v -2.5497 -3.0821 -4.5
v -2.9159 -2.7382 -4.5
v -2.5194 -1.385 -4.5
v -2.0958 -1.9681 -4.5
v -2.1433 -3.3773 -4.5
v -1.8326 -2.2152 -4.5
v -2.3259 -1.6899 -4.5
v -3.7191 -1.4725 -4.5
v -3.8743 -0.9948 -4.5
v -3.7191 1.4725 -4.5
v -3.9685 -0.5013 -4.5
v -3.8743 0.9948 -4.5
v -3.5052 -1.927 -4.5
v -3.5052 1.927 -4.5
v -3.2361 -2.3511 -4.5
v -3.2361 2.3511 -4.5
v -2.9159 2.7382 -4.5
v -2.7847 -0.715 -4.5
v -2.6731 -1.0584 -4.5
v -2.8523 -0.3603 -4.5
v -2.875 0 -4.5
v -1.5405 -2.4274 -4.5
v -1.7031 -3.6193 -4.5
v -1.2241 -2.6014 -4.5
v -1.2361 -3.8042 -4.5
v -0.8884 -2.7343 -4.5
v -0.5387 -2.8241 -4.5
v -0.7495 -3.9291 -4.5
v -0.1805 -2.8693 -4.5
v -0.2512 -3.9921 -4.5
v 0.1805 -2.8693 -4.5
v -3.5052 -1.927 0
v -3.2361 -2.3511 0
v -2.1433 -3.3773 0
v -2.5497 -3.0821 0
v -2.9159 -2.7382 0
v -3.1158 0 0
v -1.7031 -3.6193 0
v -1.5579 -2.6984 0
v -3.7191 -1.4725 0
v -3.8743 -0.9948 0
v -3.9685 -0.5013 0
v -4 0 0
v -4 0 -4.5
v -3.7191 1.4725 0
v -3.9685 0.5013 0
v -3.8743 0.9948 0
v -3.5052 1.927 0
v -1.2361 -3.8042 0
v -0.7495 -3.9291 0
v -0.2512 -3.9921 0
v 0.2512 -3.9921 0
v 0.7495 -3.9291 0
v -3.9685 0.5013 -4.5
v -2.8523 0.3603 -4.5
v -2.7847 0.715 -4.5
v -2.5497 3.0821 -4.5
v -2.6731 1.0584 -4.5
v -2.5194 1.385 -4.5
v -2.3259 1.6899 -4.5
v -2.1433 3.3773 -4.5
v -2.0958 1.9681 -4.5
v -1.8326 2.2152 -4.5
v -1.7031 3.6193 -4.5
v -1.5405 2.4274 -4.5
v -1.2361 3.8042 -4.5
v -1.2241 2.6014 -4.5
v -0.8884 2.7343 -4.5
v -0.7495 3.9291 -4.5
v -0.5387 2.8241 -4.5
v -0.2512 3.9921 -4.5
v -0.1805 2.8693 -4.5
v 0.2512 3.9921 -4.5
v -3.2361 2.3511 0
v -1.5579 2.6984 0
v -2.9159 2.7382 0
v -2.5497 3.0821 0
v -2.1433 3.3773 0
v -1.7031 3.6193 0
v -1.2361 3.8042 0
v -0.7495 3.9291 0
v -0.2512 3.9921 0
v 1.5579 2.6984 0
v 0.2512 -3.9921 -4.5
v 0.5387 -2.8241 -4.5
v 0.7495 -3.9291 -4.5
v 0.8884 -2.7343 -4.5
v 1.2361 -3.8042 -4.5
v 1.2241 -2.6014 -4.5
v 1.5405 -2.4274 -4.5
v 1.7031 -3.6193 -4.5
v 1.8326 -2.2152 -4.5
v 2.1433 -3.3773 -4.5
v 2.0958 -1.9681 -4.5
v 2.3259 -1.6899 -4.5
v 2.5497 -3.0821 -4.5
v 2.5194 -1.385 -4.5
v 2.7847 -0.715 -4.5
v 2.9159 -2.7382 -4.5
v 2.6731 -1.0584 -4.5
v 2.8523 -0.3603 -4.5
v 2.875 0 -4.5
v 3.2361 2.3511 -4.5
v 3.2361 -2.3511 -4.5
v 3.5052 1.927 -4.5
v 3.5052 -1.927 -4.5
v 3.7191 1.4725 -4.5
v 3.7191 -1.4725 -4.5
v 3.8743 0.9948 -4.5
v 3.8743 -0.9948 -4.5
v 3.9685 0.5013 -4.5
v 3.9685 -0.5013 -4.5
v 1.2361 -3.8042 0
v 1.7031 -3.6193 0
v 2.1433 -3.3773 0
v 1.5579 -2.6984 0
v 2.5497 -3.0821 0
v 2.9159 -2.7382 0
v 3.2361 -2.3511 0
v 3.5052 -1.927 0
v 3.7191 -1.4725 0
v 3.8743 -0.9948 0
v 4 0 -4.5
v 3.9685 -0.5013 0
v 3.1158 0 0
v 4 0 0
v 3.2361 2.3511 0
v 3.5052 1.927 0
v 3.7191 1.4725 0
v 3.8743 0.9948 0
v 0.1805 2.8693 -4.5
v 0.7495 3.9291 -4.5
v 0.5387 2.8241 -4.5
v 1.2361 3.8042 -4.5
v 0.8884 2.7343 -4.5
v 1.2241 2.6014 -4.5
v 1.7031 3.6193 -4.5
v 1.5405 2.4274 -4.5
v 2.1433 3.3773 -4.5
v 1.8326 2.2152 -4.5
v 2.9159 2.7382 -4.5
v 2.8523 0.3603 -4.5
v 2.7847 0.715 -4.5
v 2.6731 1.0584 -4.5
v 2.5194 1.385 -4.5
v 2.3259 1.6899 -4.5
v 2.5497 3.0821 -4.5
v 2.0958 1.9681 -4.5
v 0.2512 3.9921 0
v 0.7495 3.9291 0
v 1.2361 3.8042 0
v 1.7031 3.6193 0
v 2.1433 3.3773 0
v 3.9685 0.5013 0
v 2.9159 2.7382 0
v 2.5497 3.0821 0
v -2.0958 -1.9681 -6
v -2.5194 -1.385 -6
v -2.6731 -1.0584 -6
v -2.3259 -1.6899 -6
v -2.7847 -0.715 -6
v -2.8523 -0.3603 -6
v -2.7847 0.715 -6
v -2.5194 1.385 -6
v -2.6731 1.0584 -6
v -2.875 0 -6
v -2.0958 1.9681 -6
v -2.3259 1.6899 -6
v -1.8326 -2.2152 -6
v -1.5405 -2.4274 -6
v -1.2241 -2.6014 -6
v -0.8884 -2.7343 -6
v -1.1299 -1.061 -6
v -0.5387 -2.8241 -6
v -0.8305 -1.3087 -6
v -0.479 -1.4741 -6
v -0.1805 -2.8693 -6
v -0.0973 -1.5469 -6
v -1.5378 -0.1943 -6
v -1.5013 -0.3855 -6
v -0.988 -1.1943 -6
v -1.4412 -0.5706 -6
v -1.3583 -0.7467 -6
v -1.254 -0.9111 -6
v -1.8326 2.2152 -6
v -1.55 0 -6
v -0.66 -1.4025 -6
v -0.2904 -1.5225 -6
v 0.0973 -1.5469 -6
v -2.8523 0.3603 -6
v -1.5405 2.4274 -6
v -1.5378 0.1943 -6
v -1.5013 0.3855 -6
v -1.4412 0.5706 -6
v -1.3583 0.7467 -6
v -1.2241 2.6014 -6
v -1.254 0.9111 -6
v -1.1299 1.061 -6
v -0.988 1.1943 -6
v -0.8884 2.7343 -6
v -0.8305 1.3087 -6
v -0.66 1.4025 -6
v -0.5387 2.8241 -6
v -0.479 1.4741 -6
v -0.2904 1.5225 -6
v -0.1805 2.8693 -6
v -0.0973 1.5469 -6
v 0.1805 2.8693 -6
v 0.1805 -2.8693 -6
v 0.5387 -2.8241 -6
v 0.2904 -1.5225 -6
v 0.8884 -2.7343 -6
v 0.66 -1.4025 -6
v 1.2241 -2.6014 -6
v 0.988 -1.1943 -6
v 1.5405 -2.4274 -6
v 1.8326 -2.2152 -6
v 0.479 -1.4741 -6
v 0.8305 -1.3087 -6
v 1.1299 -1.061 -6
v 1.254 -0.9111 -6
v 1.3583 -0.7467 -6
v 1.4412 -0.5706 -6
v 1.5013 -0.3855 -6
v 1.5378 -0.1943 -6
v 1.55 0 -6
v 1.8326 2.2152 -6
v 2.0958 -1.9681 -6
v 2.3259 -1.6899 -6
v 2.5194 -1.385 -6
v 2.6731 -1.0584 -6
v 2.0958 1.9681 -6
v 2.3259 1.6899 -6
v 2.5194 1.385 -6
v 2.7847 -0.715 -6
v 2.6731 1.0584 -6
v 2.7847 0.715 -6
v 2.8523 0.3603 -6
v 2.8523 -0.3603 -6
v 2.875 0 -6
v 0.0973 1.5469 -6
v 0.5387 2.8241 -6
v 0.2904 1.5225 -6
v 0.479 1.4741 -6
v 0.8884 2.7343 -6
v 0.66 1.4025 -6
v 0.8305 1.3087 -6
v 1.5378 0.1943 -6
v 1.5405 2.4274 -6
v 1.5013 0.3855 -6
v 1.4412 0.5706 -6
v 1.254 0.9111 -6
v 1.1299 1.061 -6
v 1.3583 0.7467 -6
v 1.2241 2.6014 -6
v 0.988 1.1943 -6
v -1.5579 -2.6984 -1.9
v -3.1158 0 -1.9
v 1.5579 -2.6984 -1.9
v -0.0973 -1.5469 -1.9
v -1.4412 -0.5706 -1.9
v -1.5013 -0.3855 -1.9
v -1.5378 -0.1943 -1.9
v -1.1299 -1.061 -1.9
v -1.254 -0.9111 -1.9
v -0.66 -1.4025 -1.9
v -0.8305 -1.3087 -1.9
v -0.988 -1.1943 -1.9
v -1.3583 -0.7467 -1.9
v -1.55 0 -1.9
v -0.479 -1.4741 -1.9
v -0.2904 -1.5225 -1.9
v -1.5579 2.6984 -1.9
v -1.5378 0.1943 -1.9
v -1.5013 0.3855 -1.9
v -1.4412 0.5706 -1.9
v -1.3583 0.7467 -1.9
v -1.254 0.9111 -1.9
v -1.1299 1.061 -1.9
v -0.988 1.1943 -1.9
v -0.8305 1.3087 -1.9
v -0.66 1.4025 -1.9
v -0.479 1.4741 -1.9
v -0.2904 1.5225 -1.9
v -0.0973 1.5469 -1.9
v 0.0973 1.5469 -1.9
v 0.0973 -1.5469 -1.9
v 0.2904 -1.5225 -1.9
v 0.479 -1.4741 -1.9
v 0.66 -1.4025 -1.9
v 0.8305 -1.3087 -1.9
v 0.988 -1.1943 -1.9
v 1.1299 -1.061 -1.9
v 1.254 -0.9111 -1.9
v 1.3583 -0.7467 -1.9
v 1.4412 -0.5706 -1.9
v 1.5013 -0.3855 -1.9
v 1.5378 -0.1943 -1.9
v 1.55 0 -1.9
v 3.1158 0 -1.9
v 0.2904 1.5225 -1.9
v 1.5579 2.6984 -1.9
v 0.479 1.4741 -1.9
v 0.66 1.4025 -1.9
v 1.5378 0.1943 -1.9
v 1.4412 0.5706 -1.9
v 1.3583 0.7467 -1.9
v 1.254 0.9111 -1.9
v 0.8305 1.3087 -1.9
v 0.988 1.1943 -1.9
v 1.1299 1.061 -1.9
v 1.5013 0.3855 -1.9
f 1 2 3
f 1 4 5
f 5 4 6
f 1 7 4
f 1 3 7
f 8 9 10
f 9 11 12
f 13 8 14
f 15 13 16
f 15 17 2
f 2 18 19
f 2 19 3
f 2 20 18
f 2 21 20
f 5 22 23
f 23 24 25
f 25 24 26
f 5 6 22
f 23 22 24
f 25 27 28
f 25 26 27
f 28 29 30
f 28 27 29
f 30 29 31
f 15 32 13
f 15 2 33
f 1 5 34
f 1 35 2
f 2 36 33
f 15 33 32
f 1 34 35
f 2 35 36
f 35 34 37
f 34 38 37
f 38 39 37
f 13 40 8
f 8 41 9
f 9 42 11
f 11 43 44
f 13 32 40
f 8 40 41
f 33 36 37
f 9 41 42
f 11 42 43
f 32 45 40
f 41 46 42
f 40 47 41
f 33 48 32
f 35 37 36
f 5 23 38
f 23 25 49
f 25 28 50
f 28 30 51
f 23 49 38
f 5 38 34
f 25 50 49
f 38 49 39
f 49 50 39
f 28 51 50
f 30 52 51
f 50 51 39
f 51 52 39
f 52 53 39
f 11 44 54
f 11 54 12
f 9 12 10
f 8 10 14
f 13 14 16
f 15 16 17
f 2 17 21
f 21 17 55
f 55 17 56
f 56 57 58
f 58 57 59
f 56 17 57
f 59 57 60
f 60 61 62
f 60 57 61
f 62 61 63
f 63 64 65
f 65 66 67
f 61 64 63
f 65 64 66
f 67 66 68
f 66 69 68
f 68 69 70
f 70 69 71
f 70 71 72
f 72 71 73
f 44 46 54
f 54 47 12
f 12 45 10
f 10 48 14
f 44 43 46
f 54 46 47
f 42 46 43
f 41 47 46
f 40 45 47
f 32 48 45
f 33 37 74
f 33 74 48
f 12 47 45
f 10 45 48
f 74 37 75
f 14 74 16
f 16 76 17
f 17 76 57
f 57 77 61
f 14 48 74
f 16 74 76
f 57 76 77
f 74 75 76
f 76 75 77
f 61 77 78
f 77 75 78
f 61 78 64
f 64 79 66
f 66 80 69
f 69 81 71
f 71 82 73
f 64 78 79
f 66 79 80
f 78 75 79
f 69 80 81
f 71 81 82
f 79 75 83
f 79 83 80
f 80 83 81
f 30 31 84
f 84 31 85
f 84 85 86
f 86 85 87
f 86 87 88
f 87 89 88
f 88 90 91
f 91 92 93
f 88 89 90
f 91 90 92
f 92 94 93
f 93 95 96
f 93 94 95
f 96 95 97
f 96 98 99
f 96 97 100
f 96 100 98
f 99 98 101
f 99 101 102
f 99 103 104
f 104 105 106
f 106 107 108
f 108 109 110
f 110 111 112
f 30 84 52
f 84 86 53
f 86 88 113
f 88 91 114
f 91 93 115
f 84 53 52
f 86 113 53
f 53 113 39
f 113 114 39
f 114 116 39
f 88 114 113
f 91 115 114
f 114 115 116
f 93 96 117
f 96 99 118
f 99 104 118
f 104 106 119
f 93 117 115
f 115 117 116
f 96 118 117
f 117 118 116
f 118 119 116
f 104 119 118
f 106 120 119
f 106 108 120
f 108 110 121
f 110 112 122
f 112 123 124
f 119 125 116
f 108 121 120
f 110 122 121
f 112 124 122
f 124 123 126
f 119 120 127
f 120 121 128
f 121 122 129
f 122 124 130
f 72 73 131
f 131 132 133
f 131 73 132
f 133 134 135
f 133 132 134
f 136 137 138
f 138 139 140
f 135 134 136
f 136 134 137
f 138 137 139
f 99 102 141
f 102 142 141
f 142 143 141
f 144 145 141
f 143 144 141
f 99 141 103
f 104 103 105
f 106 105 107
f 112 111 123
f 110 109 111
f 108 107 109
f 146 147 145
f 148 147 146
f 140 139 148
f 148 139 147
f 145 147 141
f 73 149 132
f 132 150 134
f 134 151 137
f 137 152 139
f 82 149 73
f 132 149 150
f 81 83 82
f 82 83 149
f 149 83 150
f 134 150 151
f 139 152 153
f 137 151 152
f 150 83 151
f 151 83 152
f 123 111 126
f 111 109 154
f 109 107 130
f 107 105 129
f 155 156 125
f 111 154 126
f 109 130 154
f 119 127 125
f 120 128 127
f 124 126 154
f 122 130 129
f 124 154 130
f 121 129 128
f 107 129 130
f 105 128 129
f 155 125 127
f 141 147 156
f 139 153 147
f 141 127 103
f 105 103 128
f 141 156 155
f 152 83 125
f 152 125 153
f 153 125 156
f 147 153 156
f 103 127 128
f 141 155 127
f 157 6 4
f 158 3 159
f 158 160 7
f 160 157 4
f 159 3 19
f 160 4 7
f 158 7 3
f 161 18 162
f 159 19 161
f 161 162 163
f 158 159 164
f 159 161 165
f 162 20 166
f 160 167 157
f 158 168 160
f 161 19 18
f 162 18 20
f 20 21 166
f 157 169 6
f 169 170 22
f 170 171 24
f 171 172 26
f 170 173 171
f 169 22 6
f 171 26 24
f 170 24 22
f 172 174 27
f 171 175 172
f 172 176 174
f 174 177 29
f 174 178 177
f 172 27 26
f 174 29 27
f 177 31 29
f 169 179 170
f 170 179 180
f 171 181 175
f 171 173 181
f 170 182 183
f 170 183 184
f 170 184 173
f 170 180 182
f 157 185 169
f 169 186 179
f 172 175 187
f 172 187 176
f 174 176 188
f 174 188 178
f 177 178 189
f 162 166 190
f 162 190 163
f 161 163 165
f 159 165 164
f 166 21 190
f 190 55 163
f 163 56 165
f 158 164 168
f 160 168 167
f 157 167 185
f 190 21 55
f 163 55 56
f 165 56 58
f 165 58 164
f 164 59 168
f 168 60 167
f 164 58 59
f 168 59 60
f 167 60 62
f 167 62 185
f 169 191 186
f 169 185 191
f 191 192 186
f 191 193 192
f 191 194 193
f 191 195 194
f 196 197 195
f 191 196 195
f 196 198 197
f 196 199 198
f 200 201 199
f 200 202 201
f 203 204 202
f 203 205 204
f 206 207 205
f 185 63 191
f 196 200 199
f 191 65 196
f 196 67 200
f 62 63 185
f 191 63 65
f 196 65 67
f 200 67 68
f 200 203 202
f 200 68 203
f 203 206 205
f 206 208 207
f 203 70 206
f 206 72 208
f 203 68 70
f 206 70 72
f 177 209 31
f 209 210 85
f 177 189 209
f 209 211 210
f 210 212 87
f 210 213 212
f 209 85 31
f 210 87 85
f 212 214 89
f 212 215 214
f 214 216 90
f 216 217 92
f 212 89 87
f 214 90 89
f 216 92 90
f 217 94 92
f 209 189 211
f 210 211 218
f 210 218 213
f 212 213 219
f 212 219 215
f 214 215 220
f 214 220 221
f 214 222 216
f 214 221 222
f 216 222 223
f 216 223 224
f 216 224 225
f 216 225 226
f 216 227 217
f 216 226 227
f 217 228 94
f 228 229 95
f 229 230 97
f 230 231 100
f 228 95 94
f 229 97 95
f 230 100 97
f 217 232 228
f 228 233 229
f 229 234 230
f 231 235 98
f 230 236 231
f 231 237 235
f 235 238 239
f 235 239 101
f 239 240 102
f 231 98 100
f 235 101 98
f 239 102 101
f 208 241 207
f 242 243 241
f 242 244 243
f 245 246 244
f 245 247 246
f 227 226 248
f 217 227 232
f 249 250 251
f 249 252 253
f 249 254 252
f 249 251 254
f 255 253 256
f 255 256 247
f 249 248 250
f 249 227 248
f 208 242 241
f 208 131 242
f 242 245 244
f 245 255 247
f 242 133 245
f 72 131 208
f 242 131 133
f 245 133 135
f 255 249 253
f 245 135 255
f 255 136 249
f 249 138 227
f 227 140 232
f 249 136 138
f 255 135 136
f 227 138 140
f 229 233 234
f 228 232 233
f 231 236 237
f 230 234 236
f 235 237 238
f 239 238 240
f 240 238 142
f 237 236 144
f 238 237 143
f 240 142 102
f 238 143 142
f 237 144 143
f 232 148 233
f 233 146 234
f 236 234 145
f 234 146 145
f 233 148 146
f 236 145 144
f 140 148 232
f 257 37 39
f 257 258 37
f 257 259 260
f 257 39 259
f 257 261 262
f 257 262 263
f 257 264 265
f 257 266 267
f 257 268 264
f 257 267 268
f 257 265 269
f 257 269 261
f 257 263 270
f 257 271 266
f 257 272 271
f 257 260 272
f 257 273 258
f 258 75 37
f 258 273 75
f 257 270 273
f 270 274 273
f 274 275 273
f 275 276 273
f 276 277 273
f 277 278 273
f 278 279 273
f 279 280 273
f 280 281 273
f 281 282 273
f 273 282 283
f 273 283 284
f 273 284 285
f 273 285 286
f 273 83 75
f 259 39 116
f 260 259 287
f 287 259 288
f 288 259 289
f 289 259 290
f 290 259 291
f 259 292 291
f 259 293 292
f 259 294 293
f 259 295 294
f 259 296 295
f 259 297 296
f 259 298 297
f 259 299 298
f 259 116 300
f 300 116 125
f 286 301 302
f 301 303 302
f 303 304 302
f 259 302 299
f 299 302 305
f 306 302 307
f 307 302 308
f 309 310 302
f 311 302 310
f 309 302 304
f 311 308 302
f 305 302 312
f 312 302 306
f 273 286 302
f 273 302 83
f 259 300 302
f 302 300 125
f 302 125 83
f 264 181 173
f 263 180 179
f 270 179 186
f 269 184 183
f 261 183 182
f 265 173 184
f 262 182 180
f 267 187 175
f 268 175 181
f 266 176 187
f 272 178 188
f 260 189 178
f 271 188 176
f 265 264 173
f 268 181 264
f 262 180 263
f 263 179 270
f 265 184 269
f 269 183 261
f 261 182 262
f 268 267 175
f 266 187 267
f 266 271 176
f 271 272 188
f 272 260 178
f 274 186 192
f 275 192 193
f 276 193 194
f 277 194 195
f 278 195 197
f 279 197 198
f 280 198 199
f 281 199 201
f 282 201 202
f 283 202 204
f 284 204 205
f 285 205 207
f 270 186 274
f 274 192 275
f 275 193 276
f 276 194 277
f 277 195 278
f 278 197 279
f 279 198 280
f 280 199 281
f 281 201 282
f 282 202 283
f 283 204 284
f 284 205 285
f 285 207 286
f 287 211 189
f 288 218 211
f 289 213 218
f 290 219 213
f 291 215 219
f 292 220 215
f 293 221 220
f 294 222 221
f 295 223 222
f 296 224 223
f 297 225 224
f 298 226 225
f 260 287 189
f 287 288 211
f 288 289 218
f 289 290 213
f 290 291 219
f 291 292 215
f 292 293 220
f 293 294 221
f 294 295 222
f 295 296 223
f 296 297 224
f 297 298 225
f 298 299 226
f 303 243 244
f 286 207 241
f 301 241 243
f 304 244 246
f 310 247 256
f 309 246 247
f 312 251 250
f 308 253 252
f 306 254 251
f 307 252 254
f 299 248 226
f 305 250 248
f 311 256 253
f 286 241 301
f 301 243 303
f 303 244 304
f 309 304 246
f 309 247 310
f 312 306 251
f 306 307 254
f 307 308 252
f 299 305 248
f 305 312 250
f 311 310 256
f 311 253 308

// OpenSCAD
$fn = 50;

difference() {
	union() {
		translate(v = [0, 0, -4.5]) {
			cylinder(h = 4.5, r = 4.0);
		}
		#translate(v = [0, 0, -6.0]) {
			cylinder(h = 6, r = 2.875);
		}
	}
	union() {
		translate(v = [0, 0, 0]) {
			rotate(a = [0, 0, 0]) {
				difference() {
					union() {
						translate(v = [0, 0, -1.9]) {
							linear_extrude(height = 1.9) {
								polygon(points = [[3.1158, 0.0], [1.5579000000000005, 2.698361953111554], [-1.5578999999999994, 2.6983619531115544], [-3.1158, 3.815754496783323e-16], [-1.5579000000000014, -2.6983619531115535], [1.557899999999998, -2.6983619531115552]]);
							}
						}
					}
					union();
				}
			}
		}
		#translate(v = [0, 0, -100.0]) {
			cylinder(h = 200, r = 1.55);
		}
	}
}
